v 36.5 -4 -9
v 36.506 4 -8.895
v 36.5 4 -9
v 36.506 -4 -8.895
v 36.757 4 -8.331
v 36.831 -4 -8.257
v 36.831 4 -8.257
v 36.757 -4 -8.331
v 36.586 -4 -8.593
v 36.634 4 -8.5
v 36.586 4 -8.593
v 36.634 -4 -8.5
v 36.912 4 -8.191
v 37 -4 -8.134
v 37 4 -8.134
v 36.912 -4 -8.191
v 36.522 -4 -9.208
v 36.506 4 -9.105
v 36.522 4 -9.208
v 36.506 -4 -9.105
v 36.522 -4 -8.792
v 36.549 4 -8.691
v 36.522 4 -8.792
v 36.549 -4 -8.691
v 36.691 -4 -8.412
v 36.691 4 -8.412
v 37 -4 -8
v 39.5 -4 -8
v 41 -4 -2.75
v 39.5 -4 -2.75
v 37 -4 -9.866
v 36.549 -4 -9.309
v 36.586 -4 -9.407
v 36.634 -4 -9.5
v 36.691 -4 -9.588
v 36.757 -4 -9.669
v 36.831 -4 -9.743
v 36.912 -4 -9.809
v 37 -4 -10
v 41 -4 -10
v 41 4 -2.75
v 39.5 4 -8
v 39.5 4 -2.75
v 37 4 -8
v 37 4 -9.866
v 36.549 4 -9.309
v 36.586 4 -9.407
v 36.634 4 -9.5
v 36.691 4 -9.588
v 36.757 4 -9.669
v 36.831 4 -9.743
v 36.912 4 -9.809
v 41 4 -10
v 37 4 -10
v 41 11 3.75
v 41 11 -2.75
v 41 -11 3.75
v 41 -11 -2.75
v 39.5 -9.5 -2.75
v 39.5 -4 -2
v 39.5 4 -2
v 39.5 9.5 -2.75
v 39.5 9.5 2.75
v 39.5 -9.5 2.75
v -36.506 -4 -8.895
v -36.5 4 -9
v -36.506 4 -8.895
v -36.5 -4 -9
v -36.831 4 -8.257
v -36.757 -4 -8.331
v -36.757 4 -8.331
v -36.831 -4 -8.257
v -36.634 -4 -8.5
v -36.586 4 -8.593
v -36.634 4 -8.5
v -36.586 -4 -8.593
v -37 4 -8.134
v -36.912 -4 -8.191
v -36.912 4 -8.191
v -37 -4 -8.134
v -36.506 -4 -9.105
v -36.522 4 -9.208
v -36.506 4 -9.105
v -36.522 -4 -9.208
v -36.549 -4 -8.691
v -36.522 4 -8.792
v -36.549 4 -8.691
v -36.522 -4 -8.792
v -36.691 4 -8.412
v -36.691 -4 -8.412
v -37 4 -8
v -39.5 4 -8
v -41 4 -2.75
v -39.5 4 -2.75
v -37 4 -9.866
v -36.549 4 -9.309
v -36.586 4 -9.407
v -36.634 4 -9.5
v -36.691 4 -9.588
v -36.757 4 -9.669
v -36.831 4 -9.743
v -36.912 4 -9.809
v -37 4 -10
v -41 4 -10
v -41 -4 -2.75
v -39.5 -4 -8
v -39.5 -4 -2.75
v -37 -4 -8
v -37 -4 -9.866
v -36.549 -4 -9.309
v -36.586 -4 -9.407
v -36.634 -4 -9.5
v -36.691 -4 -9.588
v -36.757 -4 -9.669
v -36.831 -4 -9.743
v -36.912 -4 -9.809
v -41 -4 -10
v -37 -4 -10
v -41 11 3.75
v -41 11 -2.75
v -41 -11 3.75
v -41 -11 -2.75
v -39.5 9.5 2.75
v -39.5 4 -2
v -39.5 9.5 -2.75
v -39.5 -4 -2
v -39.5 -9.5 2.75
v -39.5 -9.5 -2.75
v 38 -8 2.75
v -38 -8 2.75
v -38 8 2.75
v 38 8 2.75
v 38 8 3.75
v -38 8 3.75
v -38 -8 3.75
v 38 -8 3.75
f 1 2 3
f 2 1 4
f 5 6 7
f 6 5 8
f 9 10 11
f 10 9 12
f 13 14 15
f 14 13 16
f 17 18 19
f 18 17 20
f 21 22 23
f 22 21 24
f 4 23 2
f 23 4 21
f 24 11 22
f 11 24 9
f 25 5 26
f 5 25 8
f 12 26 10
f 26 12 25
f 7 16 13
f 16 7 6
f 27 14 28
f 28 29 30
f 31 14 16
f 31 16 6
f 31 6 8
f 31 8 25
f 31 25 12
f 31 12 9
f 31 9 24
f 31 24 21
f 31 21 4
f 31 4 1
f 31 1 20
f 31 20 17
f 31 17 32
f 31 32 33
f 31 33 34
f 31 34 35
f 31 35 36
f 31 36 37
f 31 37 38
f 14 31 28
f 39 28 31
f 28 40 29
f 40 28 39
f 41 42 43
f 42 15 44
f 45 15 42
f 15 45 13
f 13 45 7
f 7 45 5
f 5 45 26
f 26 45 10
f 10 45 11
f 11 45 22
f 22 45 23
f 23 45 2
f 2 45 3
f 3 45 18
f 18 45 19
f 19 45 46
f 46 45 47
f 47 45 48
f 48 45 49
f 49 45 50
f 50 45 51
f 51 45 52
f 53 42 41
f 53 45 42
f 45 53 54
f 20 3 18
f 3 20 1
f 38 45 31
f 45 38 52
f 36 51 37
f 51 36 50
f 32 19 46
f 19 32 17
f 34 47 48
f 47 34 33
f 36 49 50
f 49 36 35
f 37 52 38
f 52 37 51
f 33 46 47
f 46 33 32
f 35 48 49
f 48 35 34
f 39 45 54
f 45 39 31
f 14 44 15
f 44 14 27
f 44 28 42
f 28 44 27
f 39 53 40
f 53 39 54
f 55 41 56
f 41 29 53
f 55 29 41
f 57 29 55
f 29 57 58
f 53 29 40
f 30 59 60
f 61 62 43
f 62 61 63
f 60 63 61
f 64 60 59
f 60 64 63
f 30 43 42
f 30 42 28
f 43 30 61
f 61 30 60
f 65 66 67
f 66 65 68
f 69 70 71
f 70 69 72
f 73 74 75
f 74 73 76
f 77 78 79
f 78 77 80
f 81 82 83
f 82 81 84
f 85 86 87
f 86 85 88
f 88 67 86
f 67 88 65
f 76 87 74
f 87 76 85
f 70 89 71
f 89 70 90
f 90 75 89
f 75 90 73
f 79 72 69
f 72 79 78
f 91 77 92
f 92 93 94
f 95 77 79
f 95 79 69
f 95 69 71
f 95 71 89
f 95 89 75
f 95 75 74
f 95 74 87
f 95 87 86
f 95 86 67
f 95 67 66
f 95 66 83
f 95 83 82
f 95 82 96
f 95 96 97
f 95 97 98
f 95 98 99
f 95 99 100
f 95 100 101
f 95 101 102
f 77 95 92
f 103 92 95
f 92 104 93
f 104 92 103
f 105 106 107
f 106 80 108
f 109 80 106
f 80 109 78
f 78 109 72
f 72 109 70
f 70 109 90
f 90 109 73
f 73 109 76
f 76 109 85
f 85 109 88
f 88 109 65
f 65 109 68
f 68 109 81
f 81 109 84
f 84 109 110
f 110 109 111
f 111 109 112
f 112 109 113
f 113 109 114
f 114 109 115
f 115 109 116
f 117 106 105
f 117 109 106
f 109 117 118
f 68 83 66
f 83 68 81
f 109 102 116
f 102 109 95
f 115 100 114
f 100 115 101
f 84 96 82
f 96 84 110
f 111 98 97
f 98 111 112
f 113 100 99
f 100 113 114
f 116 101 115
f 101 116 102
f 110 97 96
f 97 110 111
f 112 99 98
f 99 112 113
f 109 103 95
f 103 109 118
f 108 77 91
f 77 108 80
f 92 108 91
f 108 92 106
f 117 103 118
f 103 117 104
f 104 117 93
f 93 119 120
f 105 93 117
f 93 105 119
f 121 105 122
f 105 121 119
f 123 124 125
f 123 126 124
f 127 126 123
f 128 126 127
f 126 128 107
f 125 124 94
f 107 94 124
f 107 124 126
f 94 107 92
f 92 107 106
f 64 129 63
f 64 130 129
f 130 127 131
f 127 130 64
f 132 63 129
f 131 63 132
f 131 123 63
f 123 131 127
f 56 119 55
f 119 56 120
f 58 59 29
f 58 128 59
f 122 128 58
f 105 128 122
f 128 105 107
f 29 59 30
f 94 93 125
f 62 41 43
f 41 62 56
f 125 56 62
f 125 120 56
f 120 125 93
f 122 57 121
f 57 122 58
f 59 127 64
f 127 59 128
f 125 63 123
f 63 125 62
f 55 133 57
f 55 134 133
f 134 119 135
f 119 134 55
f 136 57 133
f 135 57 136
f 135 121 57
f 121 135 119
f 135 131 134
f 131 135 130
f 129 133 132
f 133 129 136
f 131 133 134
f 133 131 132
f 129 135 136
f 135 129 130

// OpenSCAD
$fn = 60;
/*
**  Überrahmen
*/
Xseite   =  82.0  ;   //mm
Yseite   =  22.0  ;   //mm
Zseite   =   5.5  ;   //mm
staerke  =   1.5  ;   //mm

/*
**  Filter
*/

FilterX  = 78.5 ;
FilterY  = 18.0 ;
FilterZ  = 1.0  ;

/*
**  Rahmen über LED
*/
LedX     =  78.0  ;   // led = 76 plus 2x Wand
LedY     =  18.2  ;   // led = 17,2 plus 2 x Wand
LedZ     =   5.0  ;
Wand     =   1.0  ;



module rahmen(xLength,yLength,zLength,thickness)
{
  cut = 2.0 * thickness;
  difference(){
    cube([xLength ,yLength, zLength],center = true);
    cube([xLength - cut ,yLength- cut, zLength+1],center = true);
  }
}

module Halter (){
  rahmen ( Xseite,Yseite,Zseite, staerke);
  translate ([0,0,Zseite/2.0 + 0.5]) rahmen ( Xseite,Yseite,1.0, 3.0);
}




module lippe(){
  translate ([3.5,0.0,0.0]) cylinder ( d = 2.0 , h = 8.0);
  translate ([1.0,-1.0,0.0]) cube ( [3.0,2.0,8.0]);
  translate ([0.0,-1.0,0.0]) cube ( [1.5,8.0,8.0]);
}

//lippe();

translate ([(LedX/2.0+2.0),-4.0,-9.0])  rotate([ 90.0,0.0,180.0])lippe();
translate ([-(LedX/2.0+2.0),4.0,-9.0])  rotate([ 90.0,0.0,  0.0])lippe();

Halter ();
